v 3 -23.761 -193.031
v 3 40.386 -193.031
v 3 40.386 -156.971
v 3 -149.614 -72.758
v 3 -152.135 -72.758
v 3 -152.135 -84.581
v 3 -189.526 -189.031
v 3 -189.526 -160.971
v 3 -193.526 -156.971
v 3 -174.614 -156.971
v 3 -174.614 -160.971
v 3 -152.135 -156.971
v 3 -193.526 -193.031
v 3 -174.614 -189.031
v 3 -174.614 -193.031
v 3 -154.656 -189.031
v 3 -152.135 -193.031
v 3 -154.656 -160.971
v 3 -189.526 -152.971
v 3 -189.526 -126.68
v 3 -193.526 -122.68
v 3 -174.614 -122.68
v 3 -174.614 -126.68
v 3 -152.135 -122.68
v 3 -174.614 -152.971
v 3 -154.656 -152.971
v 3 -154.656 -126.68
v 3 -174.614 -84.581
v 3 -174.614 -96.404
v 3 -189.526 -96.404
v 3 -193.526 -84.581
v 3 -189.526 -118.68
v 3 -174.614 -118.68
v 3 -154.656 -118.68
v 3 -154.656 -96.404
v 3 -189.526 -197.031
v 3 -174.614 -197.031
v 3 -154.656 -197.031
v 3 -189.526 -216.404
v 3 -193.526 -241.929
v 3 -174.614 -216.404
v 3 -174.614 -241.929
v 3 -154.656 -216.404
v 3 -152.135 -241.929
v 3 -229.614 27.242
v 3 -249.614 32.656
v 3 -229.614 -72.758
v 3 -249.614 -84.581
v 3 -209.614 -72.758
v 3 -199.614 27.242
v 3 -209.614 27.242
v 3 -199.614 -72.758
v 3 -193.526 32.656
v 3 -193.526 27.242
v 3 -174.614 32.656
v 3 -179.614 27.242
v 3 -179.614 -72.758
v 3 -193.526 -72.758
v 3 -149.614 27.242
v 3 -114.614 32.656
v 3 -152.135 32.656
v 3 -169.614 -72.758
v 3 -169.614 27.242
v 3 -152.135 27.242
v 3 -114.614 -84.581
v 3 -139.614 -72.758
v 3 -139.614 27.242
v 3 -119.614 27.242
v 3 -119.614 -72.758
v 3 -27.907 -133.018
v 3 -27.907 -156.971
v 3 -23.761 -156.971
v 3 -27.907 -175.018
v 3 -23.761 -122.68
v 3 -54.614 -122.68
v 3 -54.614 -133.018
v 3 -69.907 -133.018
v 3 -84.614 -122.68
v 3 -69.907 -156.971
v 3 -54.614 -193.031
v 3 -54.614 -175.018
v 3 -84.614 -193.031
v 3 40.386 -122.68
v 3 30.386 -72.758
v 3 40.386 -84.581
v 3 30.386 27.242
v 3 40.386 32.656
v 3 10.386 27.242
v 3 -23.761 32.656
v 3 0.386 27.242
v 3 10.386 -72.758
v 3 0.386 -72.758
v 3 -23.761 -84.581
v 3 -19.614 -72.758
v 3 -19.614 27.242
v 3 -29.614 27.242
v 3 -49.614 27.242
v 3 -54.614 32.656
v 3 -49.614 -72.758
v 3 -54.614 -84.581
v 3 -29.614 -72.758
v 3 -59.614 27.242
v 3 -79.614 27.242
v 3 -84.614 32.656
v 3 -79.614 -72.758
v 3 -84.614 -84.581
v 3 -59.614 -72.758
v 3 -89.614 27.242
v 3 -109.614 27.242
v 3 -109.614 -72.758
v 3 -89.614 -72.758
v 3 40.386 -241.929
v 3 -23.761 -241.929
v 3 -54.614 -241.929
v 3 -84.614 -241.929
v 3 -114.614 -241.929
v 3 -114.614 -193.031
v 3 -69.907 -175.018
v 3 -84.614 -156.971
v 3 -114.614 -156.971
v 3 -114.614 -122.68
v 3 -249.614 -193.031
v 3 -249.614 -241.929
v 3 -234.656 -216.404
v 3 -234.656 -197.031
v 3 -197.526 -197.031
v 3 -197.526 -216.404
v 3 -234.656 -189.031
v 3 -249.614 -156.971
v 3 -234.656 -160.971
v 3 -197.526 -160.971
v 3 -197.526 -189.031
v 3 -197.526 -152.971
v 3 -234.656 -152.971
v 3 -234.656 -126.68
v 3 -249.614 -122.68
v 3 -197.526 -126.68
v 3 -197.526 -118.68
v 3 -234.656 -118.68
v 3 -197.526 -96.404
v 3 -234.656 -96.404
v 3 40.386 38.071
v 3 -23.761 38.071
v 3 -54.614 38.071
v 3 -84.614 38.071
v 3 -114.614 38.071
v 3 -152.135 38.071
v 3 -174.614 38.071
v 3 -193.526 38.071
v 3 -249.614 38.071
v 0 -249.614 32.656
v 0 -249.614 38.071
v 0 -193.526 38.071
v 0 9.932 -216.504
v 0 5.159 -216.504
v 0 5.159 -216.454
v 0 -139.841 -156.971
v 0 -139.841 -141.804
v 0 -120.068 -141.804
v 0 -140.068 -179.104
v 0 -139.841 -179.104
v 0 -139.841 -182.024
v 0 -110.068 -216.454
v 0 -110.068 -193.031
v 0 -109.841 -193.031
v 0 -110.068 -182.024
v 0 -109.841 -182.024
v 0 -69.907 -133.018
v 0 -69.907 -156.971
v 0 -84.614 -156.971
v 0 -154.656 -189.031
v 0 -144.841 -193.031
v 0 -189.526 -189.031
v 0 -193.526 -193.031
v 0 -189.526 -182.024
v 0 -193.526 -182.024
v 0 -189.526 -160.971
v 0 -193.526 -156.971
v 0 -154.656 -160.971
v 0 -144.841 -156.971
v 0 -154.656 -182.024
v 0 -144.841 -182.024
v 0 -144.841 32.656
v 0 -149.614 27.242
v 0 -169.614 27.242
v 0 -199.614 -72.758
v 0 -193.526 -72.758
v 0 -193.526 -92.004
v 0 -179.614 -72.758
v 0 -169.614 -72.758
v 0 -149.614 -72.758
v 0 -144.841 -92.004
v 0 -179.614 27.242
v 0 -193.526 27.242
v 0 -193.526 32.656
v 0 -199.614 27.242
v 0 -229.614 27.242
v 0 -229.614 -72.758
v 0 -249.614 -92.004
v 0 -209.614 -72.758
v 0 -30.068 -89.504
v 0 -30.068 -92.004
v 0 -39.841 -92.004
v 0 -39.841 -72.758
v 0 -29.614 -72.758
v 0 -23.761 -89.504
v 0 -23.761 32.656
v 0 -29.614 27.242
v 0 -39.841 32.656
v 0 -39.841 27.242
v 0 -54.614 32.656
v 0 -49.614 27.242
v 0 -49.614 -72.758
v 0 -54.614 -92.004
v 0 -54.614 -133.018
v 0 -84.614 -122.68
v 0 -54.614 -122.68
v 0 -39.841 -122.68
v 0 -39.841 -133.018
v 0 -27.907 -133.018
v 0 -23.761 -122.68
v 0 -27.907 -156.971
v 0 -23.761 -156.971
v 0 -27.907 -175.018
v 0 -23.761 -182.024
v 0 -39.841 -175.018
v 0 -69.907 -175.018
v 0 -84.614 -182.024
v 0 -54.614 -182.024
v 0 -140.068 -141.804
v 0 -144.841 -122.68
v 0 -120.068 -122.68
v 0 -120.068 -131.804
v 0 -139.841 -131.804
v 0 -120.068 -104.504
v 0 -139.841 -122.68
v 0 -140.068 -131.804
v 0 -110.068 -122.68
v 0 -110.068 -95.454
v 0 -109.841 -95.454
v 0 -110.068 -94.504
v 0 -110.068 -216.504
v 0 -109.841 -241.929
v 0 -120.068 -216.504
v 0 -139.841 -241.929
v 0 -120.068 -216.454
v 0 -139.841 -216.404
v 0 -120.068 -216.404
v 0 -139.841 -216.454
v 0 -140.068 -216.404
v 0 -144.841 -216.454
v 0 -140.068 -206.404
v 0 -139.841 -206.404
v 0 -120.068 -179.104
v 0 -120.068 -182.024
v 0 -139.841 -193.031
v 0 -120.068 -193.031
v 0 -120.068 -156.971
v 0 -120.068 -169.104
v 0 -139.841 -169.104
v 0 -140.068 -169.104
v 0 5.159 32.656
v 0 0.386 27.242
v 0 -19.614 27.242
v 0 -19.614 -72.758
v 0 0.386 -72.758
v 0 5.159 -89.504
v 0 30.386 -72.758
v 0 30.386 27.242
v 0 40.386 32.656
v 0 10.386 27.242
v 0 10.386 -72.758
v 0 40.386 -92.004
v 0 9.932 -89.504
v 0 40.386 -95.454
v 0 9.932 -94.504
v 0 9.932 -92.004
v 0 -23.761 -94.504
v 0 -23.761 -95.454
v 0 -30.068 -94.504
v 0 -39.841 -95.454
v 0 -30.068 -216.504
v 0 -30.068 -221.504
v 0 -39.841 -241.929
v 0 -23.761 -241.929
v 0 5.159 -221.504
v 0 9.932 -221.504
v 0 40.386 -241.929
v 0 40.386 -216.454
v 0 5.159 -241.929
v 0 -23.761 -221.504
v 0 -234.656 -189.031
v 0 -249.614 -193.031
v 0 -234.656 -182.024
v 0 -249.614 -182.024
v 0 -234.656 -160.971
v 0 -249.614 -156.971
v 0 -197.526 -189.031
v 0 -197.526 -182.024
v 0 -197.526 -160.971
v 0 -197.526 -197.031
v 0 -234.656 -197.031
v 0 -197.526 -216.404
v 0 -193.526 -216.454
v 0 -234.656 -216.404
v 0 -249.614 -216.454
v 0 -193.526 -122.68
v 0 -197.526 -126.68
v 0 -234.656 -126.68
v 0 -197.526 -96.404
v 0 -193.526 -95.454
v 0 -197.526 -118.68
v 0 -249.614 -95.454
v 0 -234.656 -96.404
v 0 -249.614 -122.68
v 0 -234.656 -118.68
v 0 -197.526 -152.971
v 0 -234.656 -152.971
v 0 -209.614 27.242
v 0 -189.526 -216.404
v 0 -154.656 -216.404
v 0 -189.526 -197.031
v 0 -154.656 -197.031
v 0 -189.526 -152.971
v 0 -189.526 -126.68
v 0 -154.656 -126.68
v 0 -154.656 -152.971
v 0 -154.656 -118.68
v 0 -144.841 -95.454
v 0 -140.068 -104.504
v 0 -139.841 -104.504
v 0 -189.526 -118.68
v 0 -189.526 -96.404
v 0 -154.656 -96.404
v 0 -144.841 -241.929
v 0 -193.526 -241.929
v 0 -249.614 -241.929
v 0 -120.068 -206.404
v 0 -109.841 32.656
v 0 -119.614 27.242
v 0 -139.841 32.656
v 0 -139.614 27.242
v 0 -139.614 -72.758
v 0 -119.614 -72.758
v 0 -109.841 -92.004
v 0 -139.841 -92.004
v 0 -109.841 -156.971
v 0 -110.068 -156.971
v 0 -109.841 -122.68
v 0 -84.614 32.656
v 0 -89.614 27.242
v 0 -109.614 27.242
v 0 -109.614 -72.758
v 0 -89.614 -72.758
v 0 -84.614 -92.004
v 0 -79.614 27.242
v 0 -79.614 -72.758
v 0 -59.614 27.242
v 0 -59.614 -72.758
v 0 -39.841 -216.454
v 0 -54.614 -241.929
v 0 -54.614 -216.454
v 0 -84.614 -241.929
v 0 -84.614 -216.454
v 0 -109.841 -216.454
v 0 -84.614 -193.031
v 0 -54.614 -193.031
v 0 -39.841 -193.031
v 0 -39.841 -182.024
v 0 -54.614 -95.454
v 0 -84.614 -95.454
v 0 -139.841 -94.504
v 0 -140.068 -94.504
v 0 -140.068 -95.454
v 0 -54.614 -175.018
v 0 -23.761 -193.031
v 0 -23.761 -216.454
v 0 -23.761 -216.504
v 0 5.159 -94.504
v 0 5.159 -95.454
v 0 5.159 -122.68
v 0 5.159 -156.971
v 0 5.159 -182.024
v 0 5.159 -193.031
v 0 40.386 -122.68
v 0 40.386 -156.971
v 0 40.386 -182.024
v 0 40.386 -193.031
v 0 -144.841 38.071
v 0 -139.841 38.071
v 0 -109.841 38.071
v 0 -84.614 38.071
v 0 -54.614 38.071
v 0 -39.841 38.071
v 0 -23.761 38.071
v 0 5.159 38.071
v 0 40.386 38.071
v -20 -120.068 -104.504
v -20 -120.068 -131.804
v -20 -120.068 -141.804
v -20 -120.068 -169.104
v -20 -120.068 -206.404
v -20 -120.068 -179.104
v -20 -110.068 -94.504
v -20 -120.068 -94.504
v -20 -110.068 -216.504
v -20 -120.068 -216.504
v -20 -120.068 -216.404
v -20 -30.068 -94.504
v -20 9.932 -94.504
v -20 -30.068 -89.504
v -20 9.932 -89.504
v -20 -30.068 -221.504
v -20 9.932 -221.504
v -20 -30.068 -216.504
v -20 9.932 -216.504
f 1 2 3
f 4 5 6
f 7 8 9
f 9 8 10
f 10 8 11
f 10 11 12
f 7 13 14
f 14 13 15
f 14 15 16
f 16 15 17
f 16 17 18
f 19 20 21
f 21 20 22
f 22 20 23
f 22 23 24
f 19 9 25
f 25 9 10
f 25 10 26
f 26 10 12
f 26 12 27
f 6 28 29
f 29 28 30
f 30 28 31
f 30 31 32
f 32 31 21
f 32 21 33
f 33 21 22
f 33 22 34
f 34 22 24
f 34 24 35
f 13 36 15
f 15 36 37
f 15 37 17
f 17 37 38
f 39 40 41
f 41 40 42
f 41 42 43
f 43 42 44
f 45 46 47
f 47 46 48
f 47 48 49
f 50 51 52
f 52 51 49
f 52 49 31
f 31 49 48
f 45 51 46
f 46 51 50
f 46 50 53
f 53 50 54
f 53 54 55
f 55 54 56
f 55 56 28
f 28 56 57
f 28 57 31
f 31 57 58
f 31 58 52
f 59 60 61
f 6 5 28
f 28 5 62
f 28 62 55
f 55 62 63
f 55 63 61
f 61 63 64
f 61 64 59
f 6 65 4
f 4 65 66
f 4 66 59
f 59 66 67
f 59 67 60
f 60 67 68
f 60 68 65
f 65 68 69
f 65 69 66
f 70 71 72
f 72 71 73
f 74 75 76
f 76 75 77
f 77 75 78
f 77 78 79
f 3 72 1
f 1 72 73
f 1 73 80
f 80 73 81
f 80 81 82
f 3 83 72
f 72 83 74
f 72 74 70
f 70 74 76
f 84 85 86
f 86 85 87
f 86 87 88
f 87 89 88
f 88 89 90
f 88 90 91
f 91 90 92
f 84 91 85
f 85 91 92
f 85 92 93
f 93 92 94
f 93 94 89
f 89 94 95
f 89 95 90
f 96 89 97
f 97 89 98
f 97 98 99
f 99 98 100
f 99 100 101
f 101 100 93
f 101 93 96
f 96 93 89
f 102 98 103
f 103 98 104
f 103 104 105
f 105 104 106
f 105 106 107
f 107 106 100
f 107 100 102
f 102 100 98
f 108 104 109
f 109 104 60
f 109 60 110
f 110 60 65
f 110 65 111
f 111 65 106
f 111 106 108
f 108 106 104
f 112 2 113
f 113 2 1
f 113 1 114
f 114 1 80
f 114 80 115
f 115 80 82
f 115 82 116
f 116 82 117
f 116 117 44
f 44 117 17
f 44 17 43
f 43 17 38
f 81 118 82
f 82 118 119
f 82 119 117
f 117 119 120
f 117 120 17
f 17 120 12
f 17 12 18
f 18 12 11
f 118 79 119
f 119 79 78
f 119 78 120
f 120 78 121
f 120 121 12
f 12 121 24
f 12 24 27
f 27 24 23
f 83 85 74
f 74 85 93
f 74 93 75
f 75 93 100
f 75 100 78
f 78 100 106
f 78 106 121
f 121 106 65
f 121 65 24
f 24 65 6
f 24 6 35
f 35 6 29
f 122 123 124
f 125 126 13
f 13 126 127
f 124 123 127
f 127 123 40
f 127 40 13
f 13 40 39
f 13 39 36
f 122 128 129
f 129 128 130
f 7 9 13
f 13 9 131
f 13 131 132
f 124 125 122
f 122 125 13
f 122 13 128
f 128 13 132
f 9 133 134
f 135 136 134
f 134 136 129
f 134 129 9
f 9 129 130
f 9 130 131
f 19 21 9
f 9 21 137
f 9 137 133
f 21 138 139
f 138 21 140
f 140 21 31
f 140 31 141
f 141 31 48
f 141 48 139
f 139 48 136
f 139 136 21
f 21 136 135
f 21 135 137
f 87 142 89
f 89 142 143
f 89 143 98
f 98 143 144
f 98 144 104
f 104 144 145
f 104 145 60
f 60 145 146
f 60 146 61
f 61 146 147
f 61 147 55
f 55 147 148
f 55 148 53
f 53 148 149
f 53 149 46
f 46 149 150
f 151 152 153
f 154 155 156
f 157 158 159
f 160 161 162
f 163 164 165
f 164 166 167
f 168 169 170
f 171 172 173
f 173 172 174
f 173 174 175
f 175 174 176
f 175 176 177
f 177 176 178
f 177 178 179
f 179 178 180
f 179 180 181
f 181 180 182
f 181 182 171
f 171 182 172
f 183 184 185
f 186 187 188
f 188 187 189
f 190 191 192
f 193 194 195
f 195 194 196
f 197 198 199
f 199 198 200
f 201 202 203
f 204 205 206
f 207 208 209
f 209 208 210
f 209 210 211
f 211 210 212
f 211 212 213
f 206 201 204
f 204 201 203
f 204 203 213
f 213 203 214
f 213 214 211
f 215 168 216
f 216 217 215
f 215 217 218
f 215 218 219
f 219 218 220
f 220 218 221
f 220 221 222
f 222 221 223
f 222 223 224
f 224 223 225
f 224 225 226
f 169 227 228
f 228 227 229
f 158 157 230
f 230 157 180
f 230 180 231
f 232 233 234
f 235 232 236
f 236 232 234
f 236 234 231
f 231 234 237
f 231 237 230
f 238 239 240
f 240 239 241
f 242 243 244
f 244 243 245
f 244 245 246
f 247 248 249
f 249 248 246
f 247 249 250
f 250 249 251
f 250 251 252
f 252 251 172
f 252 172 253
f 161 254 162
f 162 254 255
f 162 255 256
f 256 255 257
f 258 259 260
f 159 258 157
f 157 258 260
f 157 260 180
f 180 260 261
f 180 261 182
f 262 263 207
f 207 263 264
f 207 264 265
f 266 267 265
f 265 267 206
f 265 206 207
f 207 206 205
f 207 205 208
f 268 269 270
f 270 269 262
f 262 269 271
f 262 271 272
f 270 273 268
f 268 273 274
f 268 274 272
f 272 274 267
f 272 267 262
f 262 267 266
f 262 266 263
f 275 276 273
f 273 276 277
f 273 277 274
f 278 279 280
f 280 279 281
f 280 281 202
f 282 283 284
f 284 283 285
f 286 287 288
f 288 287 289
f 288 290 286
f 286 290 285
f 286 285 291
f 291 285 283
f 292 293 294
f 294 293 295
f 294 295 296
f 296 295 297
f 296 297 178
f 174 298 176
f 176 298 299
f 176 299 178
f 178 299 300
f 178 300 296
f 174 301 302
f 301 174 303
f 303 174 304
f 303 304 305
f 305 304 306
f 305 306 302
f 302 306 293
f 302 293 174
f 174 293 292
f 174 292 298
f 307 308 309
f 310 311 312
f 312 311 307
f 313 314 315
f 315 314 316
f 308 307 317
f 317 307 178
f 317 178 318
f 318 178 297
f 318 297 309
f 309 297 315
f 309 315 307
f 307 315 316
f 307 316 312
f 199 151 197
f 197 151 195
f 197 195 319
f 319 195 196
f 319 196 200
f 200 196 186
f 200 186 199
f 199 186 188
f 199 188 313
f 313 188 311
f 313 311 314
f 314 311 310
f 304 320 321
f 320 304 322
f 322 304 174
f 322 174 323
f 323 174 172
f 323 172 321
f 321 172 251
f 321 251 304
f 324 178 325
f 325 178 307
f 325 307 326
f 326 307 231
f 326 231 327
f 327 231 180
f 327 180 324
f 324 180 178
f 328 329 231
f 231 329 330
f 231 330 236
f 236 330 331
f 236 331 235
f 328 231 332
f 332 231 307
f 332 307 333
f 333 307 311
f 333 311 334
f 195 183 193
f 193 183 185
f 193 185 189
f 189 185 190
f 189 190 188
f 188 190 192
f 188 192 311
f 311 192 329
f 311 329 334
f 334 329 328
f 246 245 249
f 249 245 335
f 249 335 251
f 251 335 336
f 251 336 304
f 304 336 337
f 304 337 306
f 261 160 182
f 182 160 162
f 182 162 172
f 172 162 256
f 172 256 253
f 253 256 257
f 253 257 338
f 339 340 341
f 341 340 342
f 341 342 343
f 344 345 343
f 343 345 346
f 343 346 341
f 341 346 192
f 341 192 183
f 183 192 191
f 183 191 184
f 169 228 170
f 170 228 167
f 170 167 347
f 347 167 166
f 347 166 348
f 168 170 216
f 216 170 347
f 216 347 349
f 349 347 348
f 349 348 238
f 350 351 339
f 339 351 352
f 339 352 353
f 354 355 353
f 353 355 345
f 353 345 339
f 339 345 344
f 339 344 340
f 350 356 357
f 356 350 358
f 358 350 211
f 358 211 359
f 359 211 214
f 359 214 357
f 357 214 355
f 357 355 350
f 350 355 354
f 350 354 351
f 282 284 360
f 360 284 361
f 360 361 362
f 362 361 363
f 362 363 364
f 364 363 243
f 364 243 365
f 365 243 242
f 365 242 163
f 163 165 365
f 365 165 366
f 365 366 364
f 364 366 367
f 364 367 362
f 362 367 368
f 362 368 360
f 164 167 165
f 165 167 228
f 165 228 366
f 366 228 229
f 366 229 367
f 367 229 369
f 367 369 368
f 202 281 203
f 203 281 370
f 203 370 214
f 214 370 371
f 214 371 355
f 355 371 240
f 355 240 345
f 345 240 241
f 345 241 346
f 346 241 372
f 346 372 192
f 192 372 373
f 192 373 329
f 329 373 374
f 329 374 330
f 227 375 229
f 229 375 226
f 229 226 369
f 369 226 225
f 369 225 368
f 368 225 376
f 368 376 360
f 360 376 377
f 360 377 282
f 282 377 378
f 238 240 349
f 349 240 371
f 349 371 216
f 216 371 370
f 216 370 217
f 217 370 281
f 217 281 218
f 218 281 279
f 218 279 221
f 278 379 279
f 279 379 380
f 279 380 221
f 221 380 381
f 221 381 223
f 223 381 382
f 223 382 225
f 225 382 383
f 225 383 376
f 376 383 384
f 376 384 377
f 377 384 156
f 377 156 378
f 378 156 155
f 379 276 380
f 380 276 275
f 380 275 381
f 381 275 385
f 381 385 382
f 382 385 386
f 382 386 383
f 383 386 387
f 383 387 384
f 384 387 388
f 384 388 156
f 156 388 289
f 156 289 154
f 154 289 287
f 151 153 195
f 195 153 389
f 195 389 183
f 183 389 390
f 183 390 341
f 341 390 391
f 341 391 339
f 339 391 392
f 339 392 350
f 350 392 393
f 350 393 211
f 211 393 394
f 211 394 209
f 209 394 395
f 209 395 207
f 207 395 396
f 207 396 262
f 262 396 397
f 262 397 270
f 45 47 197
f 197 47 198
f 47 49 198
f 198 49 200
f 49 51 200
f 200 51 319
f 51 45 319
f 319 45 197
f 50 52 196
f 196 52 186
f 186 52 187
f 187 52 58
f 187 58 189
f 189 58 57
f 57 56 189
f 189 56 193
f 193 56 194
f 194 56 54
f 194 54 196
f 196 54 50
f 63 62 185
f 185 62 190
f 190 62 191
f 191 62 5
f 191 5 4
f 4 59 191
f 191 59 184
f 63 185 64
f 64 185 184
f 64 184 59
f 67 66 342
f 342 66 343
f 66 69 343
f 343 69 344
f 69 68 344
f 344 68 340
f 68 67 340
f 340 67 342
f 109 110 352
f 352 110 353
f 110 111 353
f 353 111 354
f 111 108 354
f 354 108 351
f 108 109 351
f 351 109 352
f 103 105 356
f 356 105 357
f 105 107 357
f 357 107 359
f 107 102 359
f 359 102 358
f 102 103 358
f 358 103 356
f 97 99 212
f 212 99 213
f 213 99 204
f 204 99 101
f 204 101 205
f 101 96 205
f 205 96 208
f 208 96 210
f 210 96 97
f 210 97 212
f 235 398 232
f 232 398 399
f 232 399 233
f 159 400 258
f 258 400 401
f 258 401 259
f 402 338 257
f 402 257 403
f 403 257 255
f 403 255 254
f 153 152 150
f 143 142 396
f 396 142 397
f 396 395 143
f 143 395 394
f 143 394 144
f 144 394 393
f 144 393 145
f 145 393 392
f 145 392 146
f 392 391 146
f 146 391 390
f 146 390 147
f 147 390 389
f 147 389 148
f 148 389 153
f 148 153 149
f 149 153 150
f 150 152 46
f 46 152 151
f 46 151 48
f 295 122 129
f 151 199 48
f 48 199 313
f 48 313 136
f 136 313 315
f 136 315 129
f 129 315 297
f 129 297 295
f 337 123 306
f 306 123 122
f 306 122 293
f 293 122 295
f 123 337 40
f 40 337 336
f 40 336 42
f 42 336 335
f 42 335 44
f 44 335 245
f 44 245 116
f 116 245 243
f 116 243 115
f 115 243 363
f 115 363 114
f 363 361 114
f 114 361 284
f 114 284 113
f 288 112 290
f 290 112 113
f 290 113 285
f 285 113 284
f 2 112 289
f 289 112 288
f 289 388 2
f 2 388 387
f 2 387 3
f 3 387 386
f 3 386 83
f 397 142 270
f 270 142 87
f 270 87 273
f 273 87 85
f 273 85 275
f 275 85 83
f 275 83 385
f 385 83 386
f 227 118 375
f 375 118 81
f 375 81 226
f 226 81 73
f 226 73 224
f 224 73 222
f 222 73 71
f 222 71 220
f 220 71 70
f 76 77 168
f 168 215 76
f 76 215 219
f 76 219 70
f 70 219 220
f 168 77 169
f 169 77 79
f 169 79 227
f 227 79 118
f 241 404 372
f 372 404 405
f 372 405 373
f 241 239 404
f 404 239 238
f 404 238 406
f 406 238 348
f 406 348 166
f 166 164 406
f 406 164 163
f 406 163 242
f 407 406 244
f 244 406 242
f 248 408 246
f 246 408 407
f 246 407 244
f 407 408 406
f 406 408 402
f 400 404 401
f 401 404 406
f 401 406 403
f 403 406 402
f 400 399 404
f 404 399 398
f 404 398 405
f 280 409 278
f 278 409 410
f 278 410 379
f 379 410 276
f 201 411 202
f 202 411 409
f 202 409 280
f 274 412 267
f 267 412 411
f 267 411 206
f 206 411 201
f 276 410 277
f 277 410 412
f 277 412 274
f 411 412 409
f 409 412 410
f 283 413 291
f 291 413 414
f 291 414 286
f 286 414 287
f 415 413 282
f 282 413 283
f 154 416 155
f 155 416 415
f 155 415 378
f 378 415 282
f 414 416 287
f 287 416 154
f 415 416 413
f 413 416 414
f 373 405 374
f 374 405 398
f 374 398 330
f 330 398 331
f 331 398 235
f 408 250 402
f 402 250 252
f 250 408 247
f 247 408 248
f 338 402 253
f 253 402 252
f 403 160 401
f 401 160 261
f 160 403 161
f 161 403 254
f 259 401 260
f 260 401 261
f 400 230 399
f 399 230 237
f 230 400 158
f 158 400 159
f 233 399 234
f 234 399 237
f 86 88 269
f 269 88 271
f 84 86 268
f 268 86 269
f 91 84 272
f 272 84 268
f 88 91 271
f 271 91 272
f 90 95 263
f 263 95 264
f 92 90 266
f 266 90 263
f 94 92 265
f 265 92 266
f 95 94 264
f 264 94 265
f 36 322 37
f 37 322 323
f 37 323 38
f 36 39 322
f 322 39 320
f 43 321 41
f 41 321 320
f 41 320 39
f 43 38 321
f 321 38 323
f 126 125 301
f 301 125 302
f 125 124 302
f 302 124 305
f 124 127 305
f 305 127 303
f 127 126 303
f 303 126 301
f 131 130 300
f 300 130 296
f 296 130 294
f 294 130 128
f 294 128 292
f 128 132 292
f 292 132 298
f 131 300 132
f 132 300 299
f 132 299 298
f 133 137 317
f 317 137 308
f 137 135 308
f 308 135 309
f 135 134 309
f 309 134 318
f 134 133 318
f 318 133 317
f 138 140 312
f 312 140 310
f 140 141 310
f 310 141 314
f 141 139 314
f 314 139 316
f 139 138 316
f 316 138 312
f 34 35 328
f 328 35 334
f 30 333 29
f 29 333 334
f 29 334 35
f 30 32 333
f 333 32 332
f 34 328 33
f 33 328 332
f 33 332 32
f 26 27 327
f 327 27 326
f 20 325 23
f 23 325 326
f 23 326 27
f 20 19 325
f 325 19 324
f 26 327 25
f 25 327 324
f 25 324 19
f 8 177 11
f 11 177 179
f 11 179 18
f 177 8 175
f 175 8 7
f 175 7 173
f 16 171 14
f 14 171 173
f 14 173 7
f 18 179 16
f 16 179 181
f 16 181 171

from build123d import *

# Parameters (mm, degrees)
SKETCH_1_W             = 280
SKETCH_1_H             = 290
EXTRUDE_1_DEPTH        = 3
SKETCH_2_W             = 42
SKETCH_2_H             = 42
CUT_EXTRUDE_1_DEPTH    = 3
SKETCH_3_W             = 122
SKETCH_3_H             = 10
EXTRUDE_4_DEPTH        = 20
SKETCH_5_W             = 5
SKETCH_5_H             = 40
EXTRUDE_7_DEPTH        = 20
EXTRUDE_8_DEPTH        = 10
PATTERN_LINEAR_1_COUNT = 4
PATTERN_LINEAR_1_PITCH = 37.3
SKETCH_7_W             = 100
SKETCH_7_H             = 20
CUT_EXTRUDE_3_DEPTH    = 3
PATTERN_LINEAR_2_COUNT = 9
PATTERN_LINEAR_2_PITCH = 30
SKETCH_8_W             = 19.372377966
SKETCH_8_H             = 34.870206367
SKETCH_8_W_2           = 28.060398732
SKETCH_8_W_3           = 26.290591332
SKETCH_8_W_4           = 22.27663197
SKETCH_8_H_2           = 37.129793633
CUT_EXTRUDE_4_DEPTH    = 3


with BuildPart() as part:
    # 草图1 → 凸台-拉伸1 (new body)
    with BuildSketch(Plane(origin=(0, 0, 0), x_dir=(0, 0, -1), z_dir=(1, 0, 0))):
        with Locations((101.929406601, -104.613945148)):
            Rectangle(SKETCH_1_W, SKETCH_1_H)
    extrude(amount=EXTRUDE_1_DEPTH)

    # 草图2 → 切除-拉伸1 (cut)
    with BuildSketch(Plane.ZY):
        with Locations((-154.017718623, -48.907355815)):
            Rectangle(SKETCH_2_W, SKETCH_2_H)
    extrude(amount=-CUT_EXTRUDE_1_DEPTH, mode=Mode.SUBTRACT)

    # 草图3 → 凸台-拉伸4 (add)
    with BuildSketch(Plane.ZY):
        with Locations((-155.503619283, -115.067977161)):
            Rectangle(SKETCH_3_W, SKETCH_3_H)
    extrude(amount=EXTRUDE_4_DEPTH)

    # 草图5 → 凸台-拉伸7 (add)
    with BuildSketch(Plane.ZY):
        with Locations((-219.003619283, -10.067977161)):
            Rectangle(SKETCH_5_W, SKETCH_5_H)
        with Locations((-92.003619283, -10.067977161)):
            Rectangle(SKETCH_5_W, SKETCH_5_H)
    extrude(amount=EXTRUDE_7_DEPTH)

    # 草图6 → 凸台-拉伸8 (add)
    with BuildSketch(Plane.XY.offset(-94.503619283)):
        Polygon((-20, -120.067977161), (0, -120.067977161), (0, -140.067977161), align=None)
    extrude_8 = extrude(amount=-EXTRUDE_8_DEPTH)

    # 阵列(线性)1: 凸台-拉伸8 ×4
    with Locations(*[(0, 0, -i * PATTERN_LINEAR_1_PITCH) for i in range(1, PATTERN_LINEAR_1_COUNT)]):
        add(extrude_8)

    # 草图7 → 切除-拉伸3 (cut)
    with BuildSketch(Plane.ZY):
        with Locations((-22.758250254, 20.386054852)):
            Rectangle(SKETCH_7_W, SKETCH_7_H)
    cut_extrude_3 = extrude(amount=-CUT_EXTRUDE_3_DEPTH, mode=Mode.SUBTRACT)

    # 阵列(线性)2: 切除-拉伸3 ×9
    with Locations(*[(0, -i * PATTERN_LINEAR_2_PITCH, 0) for i in range(1, PATTERN_LINEAR_2_COUNT)]):
        add(cut_extrude_3, mode=Mode.SUBTRACT)

    # 草图8 → 切除-拉伸4 (cut)
    with BuildSketch(Plane.ZY):
        with Locations((-206.7174303, -172.090616985)):
            Rectangle(SKETCH_8_W, SKETCH_8_H)
        with Locations((-175.001041951, -172.090616985)):
            Rectangle(SKETCH_8_W_2, SKETCH_8_H)
        with Locations((-139.825546919, -172.090616985)):
            Rectangle(SKETCH_8_W_3, SKETCH_8_H)
        with Locations((-107.541935268, -172.090616985)):
            Rectangle(SKETCH_8_W_4, SKETCH_8_H)
        with Locations((-107.541935268, -216.090616985)):
            Rectangle(SKETCH_8_W_4, SKETCH_8_H_2)
        with Locations((-139.825546919, -216.090616985)):
            Rectangle(SKETCH_8_W_3, SKETCH_8_H_2)
        with Locations((-175.001041951, -216.090616985)):
            Rectangle(SKETCH_8_W_2, SKETCH_8_H_2)
        with Locations((-206.7174303, -216.090616985)):
            Rectangle(SKETCH_8_W, SKETCH_8_H_2)
    extrude(amount=-CUT_EXTRUDE_4_DEPTH, mode=Mode.SUBTRACT)


solid = part.part
